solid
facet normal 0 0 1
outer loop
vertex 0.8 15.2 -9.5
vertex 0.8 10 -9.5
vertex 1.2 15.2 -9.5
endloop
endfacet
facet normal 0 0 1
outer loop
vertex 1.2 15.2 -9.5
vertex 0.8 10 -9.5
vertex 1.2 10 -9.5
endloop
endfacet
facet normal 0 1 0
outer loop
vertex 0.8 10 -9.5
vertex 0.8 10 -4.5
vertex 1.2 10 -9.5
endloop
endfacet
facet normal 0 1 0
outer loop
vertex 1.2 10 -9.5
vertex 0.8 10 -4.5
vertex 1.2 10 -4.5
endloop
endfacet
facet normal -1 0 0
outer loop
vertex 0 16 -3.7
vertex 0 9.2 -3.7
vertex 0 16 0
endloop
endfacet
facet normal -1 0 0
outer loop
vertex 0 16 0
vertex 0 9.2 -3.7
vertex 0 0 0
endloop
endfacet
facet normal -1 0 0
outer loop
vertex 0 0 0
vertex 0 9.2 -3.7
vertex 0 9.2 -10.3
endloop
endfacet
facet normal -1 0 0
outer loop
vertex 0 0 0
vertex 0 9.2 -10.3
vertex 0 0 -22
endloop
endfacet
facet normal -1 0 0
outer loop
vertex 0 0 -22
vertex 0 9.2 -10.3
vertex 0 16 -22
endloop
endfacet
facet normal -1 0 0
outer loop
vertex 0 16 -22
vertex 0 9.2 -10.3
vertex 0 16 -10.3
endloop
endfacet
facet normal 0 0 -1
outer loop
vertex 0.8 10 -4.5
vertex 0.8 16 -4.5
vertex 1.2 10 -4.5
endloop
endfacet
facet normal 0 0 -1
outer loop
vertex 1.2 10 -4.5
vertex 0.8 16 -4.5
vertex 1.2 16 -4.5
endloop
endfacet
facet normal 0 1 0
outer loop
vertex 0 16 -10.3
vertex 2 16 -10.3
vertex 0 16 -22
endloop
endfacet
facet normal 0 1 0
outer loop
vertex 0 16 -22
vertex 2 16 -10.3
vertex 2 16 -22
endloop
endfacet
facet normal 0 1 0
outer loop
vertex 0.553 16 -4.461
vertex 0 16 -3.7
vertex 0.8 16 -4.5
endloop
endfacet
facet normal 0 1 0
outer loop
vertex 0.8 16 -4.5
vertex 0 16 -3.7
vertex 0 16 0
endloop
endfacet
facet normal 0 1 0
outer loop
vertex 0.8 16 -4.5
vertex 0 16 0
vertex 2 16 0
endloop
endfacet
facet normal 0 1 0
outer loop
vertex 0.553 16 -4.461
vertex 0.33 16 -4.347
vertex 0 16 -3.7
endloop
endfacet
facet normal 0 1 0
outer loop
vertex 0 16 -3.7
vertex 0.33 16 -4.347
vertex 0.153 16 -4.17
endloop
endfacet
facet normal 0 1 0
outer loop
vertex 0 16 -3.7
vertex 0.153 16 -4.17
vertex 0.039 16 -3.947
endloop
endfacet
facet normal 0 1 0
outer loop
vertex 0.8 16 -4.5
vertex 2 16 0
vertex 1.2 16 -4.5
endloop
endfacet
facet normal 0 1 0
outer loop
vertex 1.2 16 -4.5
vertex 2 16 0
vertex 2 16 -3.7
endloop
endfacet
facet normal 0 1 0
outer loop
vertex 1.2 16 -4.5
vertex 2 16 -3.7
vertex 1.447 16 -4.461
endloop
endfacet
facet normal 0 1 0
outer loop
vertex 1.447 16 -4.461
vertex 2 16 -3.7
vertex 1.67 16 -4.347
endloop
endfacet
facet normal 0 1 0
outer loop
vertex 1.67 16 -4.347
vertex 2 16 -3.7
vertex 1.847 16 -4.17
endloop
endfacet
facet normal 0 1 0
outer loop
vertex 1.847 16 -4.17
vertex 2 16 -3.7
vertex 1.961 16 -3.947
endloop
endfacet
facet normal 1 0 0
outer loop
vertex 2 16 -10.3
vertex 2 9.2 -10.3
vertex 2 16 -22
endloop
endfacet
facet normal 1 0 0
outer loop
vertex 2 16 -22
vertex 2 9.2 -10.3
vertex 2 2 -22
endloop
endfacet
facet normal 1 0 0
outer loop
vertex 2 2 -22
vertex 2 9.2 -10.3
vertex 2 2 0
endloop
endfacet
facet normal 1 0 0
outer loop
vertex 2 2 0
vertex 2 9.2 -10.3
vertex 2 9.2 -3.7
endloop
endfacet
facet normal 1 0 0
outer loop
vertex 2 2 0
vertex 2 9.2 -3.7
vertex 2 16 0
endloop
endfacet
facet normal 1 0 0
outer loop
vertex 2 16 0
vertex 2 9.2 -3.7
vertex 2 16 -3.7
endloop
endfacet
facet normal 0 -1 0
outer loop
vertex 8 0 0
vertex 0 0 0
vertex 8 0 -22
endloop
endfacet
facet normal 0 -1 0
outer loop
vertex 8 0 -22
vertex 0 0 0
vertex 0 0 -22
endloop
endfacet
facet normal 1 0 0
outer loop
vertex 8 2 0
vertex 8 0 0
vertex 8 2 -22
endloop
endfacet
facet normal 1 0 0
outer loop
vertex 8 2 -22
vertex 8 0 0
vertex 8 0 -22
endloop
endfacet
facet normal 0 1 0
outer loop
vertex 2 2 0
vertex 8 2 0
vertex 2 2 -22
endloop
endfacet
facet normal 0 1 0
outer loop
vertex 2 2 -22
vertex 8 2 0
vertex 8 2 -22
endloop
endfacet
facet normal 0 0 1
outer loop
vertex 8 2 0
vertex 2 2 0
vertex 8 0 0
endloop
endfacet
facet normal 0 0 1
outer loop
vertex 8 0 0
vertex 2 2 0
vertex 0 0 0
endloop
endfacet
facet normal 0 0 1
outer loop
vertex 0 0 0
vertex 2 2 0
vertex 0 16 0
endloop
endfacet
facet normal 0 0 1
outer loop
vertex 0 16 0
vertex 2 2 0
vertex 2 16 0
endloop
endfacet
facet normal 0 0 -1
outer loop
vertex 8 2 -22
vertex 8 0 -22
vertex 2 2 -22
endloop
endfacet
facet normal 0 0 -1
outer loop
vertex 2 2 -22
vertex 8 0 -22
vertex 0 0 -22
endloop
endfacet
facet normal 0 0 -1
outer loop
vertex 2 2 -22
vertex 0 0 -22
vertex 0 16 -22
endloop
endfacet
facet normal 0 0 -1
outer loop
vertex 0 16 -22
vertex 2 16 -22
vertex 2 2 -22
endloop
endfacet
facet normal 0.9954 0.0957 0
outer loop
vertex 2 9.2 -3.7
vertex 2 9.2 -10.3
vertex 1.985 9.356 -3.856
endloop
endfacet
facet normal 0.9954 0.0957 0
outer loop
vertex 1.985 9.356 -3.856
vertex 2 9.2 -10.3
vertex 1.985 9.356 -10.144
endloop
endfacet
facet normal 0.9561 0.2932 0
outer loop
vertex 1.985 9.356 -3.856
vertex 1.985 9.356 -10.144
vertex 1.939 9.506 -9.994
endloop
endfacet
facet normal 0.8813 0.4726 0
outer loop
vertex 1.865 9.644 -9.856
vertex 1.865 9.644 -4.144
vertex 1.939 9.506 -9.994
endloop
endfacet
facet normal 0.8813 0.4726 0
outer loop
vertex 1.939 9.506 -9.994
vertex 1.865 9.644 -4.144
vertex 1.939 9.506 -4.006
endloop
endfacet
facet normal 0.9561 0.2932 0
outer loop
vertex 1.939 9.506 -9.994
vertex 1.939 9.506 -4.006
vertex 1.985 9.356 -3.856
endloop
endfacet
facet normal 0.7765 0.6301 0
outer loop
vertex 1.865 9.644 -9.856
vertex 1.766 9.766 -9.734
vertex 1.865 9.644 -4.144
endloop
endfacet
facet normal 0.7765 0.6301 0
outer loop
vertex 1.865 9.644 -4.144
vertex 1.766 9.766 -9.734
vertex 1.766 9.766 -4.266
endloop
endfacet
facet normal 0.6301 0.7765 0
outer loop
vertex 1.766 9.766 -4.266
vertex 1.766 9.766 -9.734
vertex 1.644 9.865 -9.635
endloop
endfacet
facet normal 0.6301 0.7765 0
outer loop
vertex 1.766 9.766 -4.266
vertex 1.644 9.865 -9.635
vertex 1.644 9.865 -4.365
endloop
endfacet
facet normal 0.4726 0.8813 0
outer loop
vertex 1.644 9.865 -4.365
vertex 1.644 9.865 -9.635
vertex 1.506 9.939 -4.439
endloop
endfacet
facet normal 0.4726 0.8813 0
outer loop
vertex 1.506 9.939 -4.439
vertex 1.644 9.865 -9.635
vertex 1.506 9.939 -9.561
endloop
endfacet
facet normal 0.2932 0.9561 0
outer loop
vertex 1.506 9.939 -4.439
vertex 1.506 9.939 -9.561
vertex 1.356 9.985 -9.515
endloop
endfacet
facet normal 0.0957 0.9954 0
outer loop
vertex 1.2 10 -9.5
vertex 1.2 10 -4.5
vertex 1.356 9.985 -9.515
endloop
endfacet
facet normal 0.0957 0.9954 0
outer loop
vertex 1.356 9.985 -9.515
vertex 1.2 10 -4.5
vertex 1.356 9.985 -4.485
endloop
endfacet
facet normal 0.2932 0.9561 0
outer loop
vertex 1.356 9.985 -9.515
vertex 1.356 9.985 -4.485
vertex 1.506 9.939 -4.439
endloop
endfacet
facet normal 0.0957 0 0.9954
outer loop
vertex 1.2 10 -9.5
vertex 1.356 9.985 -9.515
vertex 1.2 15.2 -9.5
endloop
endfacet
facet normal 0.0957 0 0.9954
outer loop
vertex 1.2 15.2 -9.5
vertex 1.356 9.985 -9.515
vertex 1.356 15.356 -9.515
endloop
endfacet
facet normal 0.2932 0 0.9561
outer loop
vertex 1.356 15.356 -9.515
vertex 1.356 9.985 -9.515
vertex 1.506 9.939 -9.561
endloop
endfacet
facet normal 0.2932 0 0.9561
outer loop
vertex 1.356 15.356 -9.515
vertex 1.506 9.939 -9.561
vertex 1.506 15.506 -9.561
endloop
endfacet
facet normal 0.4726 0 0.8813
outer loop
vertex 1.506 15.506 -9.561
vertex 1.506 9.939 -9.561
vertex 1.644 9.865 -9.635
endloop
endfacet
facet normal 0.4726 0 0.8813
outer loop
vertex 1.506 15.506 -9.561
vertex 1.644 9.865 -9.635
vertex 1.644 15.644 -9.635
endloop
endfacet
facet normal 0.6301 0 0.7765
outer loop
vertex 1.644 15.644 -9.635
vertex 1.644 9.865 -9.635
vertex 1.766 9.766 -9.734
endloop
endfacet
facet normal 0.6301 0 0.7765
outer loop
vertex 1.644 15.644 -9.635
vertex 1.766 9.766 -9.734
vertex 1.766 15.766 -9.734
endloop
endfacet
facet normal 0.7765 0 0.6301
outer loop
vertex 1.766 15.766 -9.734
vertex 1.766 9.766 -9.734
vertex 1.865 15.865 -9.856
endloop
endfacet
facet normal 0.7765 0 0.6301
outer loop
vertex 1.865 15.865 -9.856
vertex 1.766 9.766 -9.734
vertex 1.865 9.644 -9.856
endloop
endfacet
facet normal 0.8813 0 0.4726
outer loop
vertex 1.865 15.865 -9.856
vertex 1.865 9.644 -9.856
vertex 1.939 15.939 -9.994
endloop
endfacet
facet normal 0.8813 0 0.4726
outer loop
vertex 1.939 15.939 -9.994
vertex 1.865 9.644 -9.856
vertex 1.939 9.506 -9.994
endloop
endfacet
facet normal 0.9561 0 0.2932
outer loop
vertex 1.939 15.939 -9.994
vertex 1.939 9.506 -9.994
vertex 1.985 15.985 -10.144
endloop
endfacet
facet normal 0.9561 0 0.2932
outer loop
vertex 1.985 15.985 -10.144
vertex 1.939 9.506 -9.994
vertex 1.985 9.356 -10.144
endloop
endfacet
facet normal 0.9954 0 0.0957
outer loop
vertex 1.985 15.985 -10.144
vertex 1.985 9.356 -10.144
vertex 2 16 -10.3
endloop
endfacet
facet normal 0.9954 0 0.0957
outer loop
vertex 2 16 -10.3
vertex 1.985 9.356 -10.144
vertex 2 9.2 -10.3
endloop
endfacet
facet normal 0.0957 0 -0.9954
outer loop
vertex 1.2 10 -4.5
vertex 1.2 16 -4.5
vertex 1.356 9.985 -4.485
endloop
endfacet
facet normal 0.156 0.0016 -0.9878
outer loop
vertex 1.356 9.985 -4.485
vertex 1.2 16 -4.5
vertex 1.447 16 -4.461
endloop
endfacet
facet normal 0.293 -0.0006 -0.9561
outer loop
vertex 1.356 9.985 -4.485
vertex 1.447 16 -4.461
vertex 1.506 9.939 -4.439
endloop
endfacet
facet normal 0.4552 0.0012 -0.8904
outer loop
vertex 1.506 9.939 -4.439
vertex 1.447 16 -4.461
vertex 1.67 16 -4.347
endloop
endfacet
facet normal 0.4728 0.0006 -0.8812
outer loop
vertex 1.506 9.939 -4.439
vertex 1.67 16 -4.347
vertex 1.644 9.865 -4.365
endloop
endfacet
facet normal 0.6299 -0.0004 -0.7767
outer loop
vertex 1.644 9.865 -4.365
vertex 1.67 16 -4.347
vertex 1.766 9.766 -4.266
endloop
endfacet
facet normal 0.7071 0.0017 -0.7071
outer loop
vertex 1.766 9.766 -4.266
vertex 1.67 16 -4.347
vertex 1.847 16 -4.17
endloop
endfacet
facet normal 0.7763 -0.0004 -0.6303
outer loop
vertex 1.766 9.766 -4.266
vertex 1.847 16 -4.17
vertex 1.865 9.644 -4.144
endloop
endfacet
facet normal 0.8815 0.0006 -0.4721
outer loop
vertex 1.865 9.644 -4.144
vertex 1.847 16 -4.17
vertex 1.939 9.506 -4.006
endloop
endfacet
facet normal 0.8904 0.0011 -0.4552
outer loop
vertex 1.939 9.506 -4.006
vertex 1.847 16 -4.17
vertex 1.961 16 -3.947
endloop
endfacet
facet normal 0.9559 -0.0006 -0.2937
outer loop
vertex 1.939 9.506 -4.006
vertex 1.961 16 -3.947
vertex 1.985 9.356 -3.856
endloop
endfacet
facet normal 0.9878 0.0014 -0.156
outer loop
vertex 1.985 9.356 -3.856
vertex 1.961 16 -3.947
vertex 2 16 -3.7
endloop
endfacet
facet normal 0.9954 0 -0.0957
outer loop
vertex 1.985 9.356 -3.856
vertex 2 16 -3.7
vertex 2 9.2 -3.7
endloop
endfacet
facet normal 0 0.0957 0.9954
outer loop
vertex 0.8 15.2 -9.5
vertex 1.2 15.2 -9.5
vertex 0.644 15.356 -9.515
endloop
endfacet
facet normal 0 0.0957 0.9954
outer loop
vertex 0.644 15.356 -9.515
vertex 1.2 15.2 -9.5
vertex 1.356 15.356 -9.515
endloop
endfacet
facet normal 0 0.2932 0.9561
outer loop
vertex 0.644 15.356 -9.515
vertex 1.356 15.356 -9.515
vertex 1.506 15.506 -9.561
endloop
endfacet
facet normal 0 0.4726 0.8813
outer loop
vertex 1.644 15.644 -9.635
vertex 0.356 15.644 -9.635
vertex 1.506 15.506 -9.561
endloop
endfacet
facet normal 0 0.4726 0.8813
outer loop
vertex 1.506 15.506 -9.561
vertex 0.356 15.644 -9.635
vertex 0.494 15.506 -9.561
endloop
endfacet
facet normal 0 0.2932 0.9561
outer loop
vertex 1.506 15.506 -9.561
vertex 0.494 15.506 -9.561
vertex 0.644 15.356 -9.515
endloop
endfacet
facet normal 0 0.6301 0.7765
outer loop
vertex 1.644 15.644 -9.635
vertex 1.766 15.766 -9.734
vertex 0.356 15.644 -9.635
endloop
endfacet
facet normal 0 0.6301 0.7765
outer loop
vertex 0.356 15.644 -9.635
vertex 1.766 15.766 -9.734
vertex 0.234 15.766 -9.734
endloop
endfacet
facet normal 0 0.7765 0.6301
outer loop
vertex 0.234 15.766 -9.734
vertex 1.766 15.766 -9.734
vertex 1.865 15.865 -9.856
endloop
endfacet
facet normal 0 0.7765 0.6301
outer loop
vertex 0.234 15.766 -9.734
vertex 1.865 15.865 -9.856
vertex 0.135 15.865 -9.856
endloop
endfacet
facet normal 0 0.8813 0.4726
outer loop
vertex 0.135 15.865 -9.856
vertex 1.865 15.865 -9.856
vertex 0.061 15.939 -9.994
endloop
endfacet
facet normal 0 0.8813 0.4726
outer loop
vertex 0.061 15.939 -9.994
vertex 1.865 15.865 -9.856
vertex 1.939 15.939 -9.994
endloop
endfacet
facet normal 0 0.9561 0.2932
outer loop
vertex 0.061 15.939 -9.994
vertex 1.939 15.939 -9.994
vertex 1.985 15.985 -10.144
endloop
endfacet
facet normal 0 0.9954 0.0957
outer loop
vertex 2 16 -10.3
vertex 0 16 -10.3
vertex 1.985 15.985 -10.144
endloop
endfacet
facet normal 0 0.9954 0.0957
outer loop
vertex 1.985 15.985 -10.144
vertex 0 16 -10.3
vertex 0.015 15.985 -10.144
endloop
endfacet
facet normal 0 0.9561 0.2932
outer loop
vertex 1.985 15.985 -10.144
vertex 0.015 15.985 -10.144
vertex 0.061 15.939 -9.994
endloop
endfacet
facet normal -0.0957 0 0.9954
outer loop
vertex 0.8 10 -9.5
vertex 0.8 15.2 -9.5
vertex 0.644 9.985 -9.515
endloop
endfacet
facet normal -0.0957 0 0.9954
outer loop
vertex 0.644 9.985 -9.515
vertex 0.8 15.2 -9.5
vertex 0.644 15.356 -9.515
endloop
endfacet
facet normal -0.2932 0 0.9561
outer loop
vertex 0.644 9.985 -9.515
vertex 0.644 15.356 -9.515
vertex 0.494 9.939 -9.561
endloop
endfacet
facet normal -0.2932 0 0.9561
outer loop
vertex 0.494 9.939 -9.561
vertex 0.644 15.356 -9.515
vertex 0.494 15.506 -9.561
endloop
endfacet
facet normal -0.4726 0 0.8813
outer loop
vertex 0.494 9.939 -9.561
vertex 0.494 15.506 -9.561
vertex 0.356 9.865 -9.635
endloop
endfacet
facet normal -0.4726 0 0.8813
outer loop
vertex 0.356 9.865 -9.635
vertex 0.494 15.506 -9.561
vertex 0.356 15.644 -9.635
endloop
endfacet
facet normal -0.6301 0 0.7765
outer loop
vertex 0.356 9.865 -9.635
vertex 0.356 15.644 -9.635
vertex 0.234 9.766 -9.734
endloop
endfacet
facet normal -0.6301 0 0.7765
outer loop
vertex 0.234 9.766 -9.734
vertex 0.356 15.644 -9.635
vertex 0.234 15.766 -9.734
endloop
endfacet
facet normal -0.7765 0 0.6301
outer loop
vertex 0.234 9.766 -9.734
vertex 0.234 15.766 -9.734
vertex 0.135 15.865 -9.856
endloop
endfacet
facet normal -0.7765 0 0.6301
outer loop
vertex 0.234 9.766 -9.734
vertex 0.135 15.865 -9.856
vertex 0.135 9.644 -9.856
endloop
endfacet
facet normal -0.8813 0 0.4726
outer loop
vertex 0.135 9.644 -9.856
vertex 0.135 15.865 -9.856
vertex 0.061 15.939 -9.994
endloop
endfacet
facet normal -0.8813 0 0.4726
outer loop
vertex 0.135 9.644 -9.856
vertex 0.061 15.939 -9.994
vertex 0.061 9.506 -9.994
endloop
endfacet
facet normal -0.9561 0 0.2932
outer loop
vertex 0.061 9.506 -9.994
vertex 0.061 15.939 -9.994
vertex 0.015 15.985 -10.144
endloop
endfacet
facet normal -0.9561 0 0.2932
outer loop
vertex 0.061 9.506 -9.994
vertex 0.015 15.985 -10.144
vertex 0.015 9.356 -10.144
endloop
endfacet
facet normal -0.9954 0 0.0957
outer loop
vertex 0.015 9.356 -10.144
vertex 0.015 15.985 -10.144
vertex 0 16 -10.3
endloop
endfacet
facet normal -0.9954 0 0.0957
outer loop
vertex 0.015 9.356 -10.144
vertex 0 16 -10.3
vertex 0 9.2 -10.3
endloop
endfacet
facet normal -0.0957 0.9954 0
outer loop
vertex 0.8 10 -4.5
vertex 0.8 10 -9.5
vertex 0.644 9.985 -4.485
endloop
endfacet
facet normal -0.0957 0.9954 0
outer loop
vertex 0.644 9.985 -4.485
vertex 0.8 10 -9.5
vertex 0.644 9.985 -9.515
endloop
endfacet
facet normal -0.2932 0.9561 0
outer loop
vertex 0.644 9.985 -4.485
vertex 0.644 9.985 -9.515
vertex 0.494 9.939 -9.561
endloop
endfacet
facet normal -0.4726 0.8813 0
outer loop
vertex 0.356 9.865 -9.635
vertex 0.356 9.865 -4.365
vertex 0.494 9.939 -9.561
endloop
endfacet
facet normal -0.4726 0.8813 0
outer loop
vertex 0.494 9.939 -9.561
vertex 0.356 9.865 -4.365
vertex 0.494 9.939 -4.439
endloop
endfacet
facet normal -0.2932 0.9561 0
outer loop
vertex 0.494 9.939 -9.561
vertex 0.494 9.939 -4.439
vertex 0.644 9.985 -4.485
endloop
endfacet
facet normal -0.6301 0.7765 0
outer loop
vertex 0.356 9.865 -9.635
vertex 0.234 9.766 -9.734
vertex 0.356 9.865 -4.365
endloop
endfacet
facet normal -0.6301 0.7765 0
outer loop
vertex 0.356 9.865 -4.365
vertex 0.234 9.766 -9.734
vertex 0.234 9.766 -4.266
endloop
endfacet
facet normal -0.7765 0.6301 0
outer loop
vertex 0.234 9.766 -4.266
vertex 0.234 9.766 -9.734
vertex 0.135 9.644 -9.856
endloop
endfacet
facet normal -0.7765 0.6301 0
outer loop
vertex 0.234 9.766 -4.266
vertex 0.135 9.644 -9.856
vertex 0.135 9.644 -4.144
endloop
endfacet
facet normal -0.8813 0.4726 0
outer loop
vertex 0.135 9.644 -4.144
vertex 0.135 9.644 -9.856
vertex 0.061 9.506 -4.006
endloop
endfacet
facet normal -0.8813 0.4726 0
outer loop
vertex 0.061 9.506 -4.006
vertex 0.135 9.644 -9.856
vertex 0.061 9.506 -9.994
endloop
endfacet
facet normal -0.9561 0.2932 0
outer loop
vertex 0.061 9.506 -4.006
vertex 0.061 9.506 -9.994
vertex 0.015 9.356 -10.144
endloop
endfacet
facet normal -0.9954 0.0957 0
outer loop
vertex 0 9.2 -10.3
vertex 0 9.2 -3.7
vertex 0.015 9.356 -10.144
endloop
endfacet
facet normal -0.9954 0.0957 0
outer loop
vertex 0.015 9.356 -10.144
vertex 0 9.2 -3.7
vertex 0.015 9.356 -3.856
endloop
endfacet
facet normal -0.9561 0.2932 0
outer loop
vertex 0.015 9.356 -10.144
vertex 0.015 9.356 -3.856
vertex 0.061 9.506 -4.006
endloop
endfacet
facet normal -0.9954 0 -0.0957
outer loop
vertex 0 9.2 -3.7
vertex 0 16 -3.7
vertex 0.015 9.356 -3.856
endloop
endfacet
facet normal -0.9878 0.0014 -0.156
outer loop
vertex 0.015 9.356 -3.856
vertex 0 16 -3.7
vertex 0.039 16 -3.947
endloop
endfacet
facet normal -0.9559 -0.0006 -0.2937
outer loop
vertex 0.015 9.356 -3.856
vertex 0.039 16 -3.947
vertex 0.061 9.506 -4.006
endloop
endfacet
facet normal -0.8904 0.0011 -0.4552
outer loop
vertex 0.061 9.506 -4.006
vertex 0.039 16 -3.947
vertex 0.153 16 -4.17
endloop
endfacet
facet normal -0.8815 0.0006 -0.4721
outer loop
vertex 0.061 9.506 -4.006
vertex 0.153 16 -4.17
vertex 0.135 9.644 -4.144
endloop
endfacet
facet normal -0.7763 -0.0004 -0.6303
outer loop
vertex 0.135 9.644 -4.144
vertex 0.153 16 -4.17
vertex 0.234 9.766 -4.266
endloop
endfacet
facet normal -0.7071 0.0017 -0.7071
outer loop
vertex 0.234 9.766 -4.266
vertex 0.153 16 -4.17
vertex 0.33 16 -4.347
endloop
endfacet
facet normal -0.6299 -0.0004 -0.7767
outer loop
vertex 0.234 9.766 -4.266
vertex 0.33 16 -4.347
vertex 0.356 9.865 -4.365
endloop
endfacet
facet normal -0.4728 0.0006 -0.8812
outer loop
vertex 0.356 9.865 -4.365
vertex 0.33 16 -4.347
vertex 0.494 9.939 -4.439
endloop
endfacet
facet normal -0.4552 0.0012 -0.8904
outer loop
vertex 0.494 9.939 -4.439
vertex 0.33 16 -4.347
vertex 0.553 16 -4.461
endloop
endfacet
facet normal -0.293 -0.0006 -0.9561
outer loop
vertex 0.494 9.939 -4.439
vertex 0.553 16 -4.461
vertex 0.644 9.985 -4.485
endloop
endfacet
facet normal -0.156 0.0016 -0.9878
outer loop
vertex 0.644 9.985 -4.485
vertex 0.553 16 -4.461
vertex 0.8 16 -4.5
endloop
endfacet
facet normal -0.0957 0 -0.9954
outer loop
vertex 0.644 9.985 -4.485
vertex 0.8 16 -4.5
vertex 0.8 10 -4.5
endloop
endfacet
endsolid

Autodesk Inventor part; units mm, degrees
ref_plane "YZ Plane" through (0, 0, 0) normal (1, 0, 0) x (0, 1, 0)
ref_plane "XZ Plane" through (0, 0, 0) normal (0, 1, 0) x (-1, 0, 0)
ref_plane "XY Plane" through (0, 0, 0) normal (0, 0, 1) x (1, 0, 0)
sketch "Sketch1" plane through (0, 0, 0) normal (0, 0, 1) x (1, 0, 0)
  line L0 (0, 0) -> (2, 0)
  line L1 (2, 0) -> (2, 16)
  line L2 (2, 16) -> (0, 16)
  line L3 (0, 16) -> (0, 0)
  line L4 (2, 2) -> (8, 2)
  line L5 (8, 2) -> (8, 0)
  line L6 (8, 0) -> (2, 0)
  line L7 (2, 0) -> (2, 2)
  dimension "d0" = 2
  dimension "d1" = 16
  dimension "d2" = 6
extrude "Extrusion1" add sketch "Sketch1" against normal blind 22
sketch "Sketch3" plane through (2, 2, 0) normal (1, 0, 0) x (0, 0, -1)
  line L0 (9.5, 14) -> (4.5, 14)
  line L1 (4.5, 14) -> (4.5, 8)
  line L2 (4.5, 8) -> (9.5, 8)
  line L3 (9.5, 8) -> (9.5, 14)
  point P0 (0, -2)
  dimension "d9" = 5
  dimension "d10" = 6
extrude "Extrusion3" cut sketch "Sketch3" against normal blind 10
fillet "Fillet1" radius 0.8 7 edges at (2, 10, -7) (0, 10, -7) (1, 16, -9.5) (2, 13, -9.5) (0, 13, -9.5) (2, 13, -4.5) (0, 13, -4.5)
properties part number "housing_mate_v07"
